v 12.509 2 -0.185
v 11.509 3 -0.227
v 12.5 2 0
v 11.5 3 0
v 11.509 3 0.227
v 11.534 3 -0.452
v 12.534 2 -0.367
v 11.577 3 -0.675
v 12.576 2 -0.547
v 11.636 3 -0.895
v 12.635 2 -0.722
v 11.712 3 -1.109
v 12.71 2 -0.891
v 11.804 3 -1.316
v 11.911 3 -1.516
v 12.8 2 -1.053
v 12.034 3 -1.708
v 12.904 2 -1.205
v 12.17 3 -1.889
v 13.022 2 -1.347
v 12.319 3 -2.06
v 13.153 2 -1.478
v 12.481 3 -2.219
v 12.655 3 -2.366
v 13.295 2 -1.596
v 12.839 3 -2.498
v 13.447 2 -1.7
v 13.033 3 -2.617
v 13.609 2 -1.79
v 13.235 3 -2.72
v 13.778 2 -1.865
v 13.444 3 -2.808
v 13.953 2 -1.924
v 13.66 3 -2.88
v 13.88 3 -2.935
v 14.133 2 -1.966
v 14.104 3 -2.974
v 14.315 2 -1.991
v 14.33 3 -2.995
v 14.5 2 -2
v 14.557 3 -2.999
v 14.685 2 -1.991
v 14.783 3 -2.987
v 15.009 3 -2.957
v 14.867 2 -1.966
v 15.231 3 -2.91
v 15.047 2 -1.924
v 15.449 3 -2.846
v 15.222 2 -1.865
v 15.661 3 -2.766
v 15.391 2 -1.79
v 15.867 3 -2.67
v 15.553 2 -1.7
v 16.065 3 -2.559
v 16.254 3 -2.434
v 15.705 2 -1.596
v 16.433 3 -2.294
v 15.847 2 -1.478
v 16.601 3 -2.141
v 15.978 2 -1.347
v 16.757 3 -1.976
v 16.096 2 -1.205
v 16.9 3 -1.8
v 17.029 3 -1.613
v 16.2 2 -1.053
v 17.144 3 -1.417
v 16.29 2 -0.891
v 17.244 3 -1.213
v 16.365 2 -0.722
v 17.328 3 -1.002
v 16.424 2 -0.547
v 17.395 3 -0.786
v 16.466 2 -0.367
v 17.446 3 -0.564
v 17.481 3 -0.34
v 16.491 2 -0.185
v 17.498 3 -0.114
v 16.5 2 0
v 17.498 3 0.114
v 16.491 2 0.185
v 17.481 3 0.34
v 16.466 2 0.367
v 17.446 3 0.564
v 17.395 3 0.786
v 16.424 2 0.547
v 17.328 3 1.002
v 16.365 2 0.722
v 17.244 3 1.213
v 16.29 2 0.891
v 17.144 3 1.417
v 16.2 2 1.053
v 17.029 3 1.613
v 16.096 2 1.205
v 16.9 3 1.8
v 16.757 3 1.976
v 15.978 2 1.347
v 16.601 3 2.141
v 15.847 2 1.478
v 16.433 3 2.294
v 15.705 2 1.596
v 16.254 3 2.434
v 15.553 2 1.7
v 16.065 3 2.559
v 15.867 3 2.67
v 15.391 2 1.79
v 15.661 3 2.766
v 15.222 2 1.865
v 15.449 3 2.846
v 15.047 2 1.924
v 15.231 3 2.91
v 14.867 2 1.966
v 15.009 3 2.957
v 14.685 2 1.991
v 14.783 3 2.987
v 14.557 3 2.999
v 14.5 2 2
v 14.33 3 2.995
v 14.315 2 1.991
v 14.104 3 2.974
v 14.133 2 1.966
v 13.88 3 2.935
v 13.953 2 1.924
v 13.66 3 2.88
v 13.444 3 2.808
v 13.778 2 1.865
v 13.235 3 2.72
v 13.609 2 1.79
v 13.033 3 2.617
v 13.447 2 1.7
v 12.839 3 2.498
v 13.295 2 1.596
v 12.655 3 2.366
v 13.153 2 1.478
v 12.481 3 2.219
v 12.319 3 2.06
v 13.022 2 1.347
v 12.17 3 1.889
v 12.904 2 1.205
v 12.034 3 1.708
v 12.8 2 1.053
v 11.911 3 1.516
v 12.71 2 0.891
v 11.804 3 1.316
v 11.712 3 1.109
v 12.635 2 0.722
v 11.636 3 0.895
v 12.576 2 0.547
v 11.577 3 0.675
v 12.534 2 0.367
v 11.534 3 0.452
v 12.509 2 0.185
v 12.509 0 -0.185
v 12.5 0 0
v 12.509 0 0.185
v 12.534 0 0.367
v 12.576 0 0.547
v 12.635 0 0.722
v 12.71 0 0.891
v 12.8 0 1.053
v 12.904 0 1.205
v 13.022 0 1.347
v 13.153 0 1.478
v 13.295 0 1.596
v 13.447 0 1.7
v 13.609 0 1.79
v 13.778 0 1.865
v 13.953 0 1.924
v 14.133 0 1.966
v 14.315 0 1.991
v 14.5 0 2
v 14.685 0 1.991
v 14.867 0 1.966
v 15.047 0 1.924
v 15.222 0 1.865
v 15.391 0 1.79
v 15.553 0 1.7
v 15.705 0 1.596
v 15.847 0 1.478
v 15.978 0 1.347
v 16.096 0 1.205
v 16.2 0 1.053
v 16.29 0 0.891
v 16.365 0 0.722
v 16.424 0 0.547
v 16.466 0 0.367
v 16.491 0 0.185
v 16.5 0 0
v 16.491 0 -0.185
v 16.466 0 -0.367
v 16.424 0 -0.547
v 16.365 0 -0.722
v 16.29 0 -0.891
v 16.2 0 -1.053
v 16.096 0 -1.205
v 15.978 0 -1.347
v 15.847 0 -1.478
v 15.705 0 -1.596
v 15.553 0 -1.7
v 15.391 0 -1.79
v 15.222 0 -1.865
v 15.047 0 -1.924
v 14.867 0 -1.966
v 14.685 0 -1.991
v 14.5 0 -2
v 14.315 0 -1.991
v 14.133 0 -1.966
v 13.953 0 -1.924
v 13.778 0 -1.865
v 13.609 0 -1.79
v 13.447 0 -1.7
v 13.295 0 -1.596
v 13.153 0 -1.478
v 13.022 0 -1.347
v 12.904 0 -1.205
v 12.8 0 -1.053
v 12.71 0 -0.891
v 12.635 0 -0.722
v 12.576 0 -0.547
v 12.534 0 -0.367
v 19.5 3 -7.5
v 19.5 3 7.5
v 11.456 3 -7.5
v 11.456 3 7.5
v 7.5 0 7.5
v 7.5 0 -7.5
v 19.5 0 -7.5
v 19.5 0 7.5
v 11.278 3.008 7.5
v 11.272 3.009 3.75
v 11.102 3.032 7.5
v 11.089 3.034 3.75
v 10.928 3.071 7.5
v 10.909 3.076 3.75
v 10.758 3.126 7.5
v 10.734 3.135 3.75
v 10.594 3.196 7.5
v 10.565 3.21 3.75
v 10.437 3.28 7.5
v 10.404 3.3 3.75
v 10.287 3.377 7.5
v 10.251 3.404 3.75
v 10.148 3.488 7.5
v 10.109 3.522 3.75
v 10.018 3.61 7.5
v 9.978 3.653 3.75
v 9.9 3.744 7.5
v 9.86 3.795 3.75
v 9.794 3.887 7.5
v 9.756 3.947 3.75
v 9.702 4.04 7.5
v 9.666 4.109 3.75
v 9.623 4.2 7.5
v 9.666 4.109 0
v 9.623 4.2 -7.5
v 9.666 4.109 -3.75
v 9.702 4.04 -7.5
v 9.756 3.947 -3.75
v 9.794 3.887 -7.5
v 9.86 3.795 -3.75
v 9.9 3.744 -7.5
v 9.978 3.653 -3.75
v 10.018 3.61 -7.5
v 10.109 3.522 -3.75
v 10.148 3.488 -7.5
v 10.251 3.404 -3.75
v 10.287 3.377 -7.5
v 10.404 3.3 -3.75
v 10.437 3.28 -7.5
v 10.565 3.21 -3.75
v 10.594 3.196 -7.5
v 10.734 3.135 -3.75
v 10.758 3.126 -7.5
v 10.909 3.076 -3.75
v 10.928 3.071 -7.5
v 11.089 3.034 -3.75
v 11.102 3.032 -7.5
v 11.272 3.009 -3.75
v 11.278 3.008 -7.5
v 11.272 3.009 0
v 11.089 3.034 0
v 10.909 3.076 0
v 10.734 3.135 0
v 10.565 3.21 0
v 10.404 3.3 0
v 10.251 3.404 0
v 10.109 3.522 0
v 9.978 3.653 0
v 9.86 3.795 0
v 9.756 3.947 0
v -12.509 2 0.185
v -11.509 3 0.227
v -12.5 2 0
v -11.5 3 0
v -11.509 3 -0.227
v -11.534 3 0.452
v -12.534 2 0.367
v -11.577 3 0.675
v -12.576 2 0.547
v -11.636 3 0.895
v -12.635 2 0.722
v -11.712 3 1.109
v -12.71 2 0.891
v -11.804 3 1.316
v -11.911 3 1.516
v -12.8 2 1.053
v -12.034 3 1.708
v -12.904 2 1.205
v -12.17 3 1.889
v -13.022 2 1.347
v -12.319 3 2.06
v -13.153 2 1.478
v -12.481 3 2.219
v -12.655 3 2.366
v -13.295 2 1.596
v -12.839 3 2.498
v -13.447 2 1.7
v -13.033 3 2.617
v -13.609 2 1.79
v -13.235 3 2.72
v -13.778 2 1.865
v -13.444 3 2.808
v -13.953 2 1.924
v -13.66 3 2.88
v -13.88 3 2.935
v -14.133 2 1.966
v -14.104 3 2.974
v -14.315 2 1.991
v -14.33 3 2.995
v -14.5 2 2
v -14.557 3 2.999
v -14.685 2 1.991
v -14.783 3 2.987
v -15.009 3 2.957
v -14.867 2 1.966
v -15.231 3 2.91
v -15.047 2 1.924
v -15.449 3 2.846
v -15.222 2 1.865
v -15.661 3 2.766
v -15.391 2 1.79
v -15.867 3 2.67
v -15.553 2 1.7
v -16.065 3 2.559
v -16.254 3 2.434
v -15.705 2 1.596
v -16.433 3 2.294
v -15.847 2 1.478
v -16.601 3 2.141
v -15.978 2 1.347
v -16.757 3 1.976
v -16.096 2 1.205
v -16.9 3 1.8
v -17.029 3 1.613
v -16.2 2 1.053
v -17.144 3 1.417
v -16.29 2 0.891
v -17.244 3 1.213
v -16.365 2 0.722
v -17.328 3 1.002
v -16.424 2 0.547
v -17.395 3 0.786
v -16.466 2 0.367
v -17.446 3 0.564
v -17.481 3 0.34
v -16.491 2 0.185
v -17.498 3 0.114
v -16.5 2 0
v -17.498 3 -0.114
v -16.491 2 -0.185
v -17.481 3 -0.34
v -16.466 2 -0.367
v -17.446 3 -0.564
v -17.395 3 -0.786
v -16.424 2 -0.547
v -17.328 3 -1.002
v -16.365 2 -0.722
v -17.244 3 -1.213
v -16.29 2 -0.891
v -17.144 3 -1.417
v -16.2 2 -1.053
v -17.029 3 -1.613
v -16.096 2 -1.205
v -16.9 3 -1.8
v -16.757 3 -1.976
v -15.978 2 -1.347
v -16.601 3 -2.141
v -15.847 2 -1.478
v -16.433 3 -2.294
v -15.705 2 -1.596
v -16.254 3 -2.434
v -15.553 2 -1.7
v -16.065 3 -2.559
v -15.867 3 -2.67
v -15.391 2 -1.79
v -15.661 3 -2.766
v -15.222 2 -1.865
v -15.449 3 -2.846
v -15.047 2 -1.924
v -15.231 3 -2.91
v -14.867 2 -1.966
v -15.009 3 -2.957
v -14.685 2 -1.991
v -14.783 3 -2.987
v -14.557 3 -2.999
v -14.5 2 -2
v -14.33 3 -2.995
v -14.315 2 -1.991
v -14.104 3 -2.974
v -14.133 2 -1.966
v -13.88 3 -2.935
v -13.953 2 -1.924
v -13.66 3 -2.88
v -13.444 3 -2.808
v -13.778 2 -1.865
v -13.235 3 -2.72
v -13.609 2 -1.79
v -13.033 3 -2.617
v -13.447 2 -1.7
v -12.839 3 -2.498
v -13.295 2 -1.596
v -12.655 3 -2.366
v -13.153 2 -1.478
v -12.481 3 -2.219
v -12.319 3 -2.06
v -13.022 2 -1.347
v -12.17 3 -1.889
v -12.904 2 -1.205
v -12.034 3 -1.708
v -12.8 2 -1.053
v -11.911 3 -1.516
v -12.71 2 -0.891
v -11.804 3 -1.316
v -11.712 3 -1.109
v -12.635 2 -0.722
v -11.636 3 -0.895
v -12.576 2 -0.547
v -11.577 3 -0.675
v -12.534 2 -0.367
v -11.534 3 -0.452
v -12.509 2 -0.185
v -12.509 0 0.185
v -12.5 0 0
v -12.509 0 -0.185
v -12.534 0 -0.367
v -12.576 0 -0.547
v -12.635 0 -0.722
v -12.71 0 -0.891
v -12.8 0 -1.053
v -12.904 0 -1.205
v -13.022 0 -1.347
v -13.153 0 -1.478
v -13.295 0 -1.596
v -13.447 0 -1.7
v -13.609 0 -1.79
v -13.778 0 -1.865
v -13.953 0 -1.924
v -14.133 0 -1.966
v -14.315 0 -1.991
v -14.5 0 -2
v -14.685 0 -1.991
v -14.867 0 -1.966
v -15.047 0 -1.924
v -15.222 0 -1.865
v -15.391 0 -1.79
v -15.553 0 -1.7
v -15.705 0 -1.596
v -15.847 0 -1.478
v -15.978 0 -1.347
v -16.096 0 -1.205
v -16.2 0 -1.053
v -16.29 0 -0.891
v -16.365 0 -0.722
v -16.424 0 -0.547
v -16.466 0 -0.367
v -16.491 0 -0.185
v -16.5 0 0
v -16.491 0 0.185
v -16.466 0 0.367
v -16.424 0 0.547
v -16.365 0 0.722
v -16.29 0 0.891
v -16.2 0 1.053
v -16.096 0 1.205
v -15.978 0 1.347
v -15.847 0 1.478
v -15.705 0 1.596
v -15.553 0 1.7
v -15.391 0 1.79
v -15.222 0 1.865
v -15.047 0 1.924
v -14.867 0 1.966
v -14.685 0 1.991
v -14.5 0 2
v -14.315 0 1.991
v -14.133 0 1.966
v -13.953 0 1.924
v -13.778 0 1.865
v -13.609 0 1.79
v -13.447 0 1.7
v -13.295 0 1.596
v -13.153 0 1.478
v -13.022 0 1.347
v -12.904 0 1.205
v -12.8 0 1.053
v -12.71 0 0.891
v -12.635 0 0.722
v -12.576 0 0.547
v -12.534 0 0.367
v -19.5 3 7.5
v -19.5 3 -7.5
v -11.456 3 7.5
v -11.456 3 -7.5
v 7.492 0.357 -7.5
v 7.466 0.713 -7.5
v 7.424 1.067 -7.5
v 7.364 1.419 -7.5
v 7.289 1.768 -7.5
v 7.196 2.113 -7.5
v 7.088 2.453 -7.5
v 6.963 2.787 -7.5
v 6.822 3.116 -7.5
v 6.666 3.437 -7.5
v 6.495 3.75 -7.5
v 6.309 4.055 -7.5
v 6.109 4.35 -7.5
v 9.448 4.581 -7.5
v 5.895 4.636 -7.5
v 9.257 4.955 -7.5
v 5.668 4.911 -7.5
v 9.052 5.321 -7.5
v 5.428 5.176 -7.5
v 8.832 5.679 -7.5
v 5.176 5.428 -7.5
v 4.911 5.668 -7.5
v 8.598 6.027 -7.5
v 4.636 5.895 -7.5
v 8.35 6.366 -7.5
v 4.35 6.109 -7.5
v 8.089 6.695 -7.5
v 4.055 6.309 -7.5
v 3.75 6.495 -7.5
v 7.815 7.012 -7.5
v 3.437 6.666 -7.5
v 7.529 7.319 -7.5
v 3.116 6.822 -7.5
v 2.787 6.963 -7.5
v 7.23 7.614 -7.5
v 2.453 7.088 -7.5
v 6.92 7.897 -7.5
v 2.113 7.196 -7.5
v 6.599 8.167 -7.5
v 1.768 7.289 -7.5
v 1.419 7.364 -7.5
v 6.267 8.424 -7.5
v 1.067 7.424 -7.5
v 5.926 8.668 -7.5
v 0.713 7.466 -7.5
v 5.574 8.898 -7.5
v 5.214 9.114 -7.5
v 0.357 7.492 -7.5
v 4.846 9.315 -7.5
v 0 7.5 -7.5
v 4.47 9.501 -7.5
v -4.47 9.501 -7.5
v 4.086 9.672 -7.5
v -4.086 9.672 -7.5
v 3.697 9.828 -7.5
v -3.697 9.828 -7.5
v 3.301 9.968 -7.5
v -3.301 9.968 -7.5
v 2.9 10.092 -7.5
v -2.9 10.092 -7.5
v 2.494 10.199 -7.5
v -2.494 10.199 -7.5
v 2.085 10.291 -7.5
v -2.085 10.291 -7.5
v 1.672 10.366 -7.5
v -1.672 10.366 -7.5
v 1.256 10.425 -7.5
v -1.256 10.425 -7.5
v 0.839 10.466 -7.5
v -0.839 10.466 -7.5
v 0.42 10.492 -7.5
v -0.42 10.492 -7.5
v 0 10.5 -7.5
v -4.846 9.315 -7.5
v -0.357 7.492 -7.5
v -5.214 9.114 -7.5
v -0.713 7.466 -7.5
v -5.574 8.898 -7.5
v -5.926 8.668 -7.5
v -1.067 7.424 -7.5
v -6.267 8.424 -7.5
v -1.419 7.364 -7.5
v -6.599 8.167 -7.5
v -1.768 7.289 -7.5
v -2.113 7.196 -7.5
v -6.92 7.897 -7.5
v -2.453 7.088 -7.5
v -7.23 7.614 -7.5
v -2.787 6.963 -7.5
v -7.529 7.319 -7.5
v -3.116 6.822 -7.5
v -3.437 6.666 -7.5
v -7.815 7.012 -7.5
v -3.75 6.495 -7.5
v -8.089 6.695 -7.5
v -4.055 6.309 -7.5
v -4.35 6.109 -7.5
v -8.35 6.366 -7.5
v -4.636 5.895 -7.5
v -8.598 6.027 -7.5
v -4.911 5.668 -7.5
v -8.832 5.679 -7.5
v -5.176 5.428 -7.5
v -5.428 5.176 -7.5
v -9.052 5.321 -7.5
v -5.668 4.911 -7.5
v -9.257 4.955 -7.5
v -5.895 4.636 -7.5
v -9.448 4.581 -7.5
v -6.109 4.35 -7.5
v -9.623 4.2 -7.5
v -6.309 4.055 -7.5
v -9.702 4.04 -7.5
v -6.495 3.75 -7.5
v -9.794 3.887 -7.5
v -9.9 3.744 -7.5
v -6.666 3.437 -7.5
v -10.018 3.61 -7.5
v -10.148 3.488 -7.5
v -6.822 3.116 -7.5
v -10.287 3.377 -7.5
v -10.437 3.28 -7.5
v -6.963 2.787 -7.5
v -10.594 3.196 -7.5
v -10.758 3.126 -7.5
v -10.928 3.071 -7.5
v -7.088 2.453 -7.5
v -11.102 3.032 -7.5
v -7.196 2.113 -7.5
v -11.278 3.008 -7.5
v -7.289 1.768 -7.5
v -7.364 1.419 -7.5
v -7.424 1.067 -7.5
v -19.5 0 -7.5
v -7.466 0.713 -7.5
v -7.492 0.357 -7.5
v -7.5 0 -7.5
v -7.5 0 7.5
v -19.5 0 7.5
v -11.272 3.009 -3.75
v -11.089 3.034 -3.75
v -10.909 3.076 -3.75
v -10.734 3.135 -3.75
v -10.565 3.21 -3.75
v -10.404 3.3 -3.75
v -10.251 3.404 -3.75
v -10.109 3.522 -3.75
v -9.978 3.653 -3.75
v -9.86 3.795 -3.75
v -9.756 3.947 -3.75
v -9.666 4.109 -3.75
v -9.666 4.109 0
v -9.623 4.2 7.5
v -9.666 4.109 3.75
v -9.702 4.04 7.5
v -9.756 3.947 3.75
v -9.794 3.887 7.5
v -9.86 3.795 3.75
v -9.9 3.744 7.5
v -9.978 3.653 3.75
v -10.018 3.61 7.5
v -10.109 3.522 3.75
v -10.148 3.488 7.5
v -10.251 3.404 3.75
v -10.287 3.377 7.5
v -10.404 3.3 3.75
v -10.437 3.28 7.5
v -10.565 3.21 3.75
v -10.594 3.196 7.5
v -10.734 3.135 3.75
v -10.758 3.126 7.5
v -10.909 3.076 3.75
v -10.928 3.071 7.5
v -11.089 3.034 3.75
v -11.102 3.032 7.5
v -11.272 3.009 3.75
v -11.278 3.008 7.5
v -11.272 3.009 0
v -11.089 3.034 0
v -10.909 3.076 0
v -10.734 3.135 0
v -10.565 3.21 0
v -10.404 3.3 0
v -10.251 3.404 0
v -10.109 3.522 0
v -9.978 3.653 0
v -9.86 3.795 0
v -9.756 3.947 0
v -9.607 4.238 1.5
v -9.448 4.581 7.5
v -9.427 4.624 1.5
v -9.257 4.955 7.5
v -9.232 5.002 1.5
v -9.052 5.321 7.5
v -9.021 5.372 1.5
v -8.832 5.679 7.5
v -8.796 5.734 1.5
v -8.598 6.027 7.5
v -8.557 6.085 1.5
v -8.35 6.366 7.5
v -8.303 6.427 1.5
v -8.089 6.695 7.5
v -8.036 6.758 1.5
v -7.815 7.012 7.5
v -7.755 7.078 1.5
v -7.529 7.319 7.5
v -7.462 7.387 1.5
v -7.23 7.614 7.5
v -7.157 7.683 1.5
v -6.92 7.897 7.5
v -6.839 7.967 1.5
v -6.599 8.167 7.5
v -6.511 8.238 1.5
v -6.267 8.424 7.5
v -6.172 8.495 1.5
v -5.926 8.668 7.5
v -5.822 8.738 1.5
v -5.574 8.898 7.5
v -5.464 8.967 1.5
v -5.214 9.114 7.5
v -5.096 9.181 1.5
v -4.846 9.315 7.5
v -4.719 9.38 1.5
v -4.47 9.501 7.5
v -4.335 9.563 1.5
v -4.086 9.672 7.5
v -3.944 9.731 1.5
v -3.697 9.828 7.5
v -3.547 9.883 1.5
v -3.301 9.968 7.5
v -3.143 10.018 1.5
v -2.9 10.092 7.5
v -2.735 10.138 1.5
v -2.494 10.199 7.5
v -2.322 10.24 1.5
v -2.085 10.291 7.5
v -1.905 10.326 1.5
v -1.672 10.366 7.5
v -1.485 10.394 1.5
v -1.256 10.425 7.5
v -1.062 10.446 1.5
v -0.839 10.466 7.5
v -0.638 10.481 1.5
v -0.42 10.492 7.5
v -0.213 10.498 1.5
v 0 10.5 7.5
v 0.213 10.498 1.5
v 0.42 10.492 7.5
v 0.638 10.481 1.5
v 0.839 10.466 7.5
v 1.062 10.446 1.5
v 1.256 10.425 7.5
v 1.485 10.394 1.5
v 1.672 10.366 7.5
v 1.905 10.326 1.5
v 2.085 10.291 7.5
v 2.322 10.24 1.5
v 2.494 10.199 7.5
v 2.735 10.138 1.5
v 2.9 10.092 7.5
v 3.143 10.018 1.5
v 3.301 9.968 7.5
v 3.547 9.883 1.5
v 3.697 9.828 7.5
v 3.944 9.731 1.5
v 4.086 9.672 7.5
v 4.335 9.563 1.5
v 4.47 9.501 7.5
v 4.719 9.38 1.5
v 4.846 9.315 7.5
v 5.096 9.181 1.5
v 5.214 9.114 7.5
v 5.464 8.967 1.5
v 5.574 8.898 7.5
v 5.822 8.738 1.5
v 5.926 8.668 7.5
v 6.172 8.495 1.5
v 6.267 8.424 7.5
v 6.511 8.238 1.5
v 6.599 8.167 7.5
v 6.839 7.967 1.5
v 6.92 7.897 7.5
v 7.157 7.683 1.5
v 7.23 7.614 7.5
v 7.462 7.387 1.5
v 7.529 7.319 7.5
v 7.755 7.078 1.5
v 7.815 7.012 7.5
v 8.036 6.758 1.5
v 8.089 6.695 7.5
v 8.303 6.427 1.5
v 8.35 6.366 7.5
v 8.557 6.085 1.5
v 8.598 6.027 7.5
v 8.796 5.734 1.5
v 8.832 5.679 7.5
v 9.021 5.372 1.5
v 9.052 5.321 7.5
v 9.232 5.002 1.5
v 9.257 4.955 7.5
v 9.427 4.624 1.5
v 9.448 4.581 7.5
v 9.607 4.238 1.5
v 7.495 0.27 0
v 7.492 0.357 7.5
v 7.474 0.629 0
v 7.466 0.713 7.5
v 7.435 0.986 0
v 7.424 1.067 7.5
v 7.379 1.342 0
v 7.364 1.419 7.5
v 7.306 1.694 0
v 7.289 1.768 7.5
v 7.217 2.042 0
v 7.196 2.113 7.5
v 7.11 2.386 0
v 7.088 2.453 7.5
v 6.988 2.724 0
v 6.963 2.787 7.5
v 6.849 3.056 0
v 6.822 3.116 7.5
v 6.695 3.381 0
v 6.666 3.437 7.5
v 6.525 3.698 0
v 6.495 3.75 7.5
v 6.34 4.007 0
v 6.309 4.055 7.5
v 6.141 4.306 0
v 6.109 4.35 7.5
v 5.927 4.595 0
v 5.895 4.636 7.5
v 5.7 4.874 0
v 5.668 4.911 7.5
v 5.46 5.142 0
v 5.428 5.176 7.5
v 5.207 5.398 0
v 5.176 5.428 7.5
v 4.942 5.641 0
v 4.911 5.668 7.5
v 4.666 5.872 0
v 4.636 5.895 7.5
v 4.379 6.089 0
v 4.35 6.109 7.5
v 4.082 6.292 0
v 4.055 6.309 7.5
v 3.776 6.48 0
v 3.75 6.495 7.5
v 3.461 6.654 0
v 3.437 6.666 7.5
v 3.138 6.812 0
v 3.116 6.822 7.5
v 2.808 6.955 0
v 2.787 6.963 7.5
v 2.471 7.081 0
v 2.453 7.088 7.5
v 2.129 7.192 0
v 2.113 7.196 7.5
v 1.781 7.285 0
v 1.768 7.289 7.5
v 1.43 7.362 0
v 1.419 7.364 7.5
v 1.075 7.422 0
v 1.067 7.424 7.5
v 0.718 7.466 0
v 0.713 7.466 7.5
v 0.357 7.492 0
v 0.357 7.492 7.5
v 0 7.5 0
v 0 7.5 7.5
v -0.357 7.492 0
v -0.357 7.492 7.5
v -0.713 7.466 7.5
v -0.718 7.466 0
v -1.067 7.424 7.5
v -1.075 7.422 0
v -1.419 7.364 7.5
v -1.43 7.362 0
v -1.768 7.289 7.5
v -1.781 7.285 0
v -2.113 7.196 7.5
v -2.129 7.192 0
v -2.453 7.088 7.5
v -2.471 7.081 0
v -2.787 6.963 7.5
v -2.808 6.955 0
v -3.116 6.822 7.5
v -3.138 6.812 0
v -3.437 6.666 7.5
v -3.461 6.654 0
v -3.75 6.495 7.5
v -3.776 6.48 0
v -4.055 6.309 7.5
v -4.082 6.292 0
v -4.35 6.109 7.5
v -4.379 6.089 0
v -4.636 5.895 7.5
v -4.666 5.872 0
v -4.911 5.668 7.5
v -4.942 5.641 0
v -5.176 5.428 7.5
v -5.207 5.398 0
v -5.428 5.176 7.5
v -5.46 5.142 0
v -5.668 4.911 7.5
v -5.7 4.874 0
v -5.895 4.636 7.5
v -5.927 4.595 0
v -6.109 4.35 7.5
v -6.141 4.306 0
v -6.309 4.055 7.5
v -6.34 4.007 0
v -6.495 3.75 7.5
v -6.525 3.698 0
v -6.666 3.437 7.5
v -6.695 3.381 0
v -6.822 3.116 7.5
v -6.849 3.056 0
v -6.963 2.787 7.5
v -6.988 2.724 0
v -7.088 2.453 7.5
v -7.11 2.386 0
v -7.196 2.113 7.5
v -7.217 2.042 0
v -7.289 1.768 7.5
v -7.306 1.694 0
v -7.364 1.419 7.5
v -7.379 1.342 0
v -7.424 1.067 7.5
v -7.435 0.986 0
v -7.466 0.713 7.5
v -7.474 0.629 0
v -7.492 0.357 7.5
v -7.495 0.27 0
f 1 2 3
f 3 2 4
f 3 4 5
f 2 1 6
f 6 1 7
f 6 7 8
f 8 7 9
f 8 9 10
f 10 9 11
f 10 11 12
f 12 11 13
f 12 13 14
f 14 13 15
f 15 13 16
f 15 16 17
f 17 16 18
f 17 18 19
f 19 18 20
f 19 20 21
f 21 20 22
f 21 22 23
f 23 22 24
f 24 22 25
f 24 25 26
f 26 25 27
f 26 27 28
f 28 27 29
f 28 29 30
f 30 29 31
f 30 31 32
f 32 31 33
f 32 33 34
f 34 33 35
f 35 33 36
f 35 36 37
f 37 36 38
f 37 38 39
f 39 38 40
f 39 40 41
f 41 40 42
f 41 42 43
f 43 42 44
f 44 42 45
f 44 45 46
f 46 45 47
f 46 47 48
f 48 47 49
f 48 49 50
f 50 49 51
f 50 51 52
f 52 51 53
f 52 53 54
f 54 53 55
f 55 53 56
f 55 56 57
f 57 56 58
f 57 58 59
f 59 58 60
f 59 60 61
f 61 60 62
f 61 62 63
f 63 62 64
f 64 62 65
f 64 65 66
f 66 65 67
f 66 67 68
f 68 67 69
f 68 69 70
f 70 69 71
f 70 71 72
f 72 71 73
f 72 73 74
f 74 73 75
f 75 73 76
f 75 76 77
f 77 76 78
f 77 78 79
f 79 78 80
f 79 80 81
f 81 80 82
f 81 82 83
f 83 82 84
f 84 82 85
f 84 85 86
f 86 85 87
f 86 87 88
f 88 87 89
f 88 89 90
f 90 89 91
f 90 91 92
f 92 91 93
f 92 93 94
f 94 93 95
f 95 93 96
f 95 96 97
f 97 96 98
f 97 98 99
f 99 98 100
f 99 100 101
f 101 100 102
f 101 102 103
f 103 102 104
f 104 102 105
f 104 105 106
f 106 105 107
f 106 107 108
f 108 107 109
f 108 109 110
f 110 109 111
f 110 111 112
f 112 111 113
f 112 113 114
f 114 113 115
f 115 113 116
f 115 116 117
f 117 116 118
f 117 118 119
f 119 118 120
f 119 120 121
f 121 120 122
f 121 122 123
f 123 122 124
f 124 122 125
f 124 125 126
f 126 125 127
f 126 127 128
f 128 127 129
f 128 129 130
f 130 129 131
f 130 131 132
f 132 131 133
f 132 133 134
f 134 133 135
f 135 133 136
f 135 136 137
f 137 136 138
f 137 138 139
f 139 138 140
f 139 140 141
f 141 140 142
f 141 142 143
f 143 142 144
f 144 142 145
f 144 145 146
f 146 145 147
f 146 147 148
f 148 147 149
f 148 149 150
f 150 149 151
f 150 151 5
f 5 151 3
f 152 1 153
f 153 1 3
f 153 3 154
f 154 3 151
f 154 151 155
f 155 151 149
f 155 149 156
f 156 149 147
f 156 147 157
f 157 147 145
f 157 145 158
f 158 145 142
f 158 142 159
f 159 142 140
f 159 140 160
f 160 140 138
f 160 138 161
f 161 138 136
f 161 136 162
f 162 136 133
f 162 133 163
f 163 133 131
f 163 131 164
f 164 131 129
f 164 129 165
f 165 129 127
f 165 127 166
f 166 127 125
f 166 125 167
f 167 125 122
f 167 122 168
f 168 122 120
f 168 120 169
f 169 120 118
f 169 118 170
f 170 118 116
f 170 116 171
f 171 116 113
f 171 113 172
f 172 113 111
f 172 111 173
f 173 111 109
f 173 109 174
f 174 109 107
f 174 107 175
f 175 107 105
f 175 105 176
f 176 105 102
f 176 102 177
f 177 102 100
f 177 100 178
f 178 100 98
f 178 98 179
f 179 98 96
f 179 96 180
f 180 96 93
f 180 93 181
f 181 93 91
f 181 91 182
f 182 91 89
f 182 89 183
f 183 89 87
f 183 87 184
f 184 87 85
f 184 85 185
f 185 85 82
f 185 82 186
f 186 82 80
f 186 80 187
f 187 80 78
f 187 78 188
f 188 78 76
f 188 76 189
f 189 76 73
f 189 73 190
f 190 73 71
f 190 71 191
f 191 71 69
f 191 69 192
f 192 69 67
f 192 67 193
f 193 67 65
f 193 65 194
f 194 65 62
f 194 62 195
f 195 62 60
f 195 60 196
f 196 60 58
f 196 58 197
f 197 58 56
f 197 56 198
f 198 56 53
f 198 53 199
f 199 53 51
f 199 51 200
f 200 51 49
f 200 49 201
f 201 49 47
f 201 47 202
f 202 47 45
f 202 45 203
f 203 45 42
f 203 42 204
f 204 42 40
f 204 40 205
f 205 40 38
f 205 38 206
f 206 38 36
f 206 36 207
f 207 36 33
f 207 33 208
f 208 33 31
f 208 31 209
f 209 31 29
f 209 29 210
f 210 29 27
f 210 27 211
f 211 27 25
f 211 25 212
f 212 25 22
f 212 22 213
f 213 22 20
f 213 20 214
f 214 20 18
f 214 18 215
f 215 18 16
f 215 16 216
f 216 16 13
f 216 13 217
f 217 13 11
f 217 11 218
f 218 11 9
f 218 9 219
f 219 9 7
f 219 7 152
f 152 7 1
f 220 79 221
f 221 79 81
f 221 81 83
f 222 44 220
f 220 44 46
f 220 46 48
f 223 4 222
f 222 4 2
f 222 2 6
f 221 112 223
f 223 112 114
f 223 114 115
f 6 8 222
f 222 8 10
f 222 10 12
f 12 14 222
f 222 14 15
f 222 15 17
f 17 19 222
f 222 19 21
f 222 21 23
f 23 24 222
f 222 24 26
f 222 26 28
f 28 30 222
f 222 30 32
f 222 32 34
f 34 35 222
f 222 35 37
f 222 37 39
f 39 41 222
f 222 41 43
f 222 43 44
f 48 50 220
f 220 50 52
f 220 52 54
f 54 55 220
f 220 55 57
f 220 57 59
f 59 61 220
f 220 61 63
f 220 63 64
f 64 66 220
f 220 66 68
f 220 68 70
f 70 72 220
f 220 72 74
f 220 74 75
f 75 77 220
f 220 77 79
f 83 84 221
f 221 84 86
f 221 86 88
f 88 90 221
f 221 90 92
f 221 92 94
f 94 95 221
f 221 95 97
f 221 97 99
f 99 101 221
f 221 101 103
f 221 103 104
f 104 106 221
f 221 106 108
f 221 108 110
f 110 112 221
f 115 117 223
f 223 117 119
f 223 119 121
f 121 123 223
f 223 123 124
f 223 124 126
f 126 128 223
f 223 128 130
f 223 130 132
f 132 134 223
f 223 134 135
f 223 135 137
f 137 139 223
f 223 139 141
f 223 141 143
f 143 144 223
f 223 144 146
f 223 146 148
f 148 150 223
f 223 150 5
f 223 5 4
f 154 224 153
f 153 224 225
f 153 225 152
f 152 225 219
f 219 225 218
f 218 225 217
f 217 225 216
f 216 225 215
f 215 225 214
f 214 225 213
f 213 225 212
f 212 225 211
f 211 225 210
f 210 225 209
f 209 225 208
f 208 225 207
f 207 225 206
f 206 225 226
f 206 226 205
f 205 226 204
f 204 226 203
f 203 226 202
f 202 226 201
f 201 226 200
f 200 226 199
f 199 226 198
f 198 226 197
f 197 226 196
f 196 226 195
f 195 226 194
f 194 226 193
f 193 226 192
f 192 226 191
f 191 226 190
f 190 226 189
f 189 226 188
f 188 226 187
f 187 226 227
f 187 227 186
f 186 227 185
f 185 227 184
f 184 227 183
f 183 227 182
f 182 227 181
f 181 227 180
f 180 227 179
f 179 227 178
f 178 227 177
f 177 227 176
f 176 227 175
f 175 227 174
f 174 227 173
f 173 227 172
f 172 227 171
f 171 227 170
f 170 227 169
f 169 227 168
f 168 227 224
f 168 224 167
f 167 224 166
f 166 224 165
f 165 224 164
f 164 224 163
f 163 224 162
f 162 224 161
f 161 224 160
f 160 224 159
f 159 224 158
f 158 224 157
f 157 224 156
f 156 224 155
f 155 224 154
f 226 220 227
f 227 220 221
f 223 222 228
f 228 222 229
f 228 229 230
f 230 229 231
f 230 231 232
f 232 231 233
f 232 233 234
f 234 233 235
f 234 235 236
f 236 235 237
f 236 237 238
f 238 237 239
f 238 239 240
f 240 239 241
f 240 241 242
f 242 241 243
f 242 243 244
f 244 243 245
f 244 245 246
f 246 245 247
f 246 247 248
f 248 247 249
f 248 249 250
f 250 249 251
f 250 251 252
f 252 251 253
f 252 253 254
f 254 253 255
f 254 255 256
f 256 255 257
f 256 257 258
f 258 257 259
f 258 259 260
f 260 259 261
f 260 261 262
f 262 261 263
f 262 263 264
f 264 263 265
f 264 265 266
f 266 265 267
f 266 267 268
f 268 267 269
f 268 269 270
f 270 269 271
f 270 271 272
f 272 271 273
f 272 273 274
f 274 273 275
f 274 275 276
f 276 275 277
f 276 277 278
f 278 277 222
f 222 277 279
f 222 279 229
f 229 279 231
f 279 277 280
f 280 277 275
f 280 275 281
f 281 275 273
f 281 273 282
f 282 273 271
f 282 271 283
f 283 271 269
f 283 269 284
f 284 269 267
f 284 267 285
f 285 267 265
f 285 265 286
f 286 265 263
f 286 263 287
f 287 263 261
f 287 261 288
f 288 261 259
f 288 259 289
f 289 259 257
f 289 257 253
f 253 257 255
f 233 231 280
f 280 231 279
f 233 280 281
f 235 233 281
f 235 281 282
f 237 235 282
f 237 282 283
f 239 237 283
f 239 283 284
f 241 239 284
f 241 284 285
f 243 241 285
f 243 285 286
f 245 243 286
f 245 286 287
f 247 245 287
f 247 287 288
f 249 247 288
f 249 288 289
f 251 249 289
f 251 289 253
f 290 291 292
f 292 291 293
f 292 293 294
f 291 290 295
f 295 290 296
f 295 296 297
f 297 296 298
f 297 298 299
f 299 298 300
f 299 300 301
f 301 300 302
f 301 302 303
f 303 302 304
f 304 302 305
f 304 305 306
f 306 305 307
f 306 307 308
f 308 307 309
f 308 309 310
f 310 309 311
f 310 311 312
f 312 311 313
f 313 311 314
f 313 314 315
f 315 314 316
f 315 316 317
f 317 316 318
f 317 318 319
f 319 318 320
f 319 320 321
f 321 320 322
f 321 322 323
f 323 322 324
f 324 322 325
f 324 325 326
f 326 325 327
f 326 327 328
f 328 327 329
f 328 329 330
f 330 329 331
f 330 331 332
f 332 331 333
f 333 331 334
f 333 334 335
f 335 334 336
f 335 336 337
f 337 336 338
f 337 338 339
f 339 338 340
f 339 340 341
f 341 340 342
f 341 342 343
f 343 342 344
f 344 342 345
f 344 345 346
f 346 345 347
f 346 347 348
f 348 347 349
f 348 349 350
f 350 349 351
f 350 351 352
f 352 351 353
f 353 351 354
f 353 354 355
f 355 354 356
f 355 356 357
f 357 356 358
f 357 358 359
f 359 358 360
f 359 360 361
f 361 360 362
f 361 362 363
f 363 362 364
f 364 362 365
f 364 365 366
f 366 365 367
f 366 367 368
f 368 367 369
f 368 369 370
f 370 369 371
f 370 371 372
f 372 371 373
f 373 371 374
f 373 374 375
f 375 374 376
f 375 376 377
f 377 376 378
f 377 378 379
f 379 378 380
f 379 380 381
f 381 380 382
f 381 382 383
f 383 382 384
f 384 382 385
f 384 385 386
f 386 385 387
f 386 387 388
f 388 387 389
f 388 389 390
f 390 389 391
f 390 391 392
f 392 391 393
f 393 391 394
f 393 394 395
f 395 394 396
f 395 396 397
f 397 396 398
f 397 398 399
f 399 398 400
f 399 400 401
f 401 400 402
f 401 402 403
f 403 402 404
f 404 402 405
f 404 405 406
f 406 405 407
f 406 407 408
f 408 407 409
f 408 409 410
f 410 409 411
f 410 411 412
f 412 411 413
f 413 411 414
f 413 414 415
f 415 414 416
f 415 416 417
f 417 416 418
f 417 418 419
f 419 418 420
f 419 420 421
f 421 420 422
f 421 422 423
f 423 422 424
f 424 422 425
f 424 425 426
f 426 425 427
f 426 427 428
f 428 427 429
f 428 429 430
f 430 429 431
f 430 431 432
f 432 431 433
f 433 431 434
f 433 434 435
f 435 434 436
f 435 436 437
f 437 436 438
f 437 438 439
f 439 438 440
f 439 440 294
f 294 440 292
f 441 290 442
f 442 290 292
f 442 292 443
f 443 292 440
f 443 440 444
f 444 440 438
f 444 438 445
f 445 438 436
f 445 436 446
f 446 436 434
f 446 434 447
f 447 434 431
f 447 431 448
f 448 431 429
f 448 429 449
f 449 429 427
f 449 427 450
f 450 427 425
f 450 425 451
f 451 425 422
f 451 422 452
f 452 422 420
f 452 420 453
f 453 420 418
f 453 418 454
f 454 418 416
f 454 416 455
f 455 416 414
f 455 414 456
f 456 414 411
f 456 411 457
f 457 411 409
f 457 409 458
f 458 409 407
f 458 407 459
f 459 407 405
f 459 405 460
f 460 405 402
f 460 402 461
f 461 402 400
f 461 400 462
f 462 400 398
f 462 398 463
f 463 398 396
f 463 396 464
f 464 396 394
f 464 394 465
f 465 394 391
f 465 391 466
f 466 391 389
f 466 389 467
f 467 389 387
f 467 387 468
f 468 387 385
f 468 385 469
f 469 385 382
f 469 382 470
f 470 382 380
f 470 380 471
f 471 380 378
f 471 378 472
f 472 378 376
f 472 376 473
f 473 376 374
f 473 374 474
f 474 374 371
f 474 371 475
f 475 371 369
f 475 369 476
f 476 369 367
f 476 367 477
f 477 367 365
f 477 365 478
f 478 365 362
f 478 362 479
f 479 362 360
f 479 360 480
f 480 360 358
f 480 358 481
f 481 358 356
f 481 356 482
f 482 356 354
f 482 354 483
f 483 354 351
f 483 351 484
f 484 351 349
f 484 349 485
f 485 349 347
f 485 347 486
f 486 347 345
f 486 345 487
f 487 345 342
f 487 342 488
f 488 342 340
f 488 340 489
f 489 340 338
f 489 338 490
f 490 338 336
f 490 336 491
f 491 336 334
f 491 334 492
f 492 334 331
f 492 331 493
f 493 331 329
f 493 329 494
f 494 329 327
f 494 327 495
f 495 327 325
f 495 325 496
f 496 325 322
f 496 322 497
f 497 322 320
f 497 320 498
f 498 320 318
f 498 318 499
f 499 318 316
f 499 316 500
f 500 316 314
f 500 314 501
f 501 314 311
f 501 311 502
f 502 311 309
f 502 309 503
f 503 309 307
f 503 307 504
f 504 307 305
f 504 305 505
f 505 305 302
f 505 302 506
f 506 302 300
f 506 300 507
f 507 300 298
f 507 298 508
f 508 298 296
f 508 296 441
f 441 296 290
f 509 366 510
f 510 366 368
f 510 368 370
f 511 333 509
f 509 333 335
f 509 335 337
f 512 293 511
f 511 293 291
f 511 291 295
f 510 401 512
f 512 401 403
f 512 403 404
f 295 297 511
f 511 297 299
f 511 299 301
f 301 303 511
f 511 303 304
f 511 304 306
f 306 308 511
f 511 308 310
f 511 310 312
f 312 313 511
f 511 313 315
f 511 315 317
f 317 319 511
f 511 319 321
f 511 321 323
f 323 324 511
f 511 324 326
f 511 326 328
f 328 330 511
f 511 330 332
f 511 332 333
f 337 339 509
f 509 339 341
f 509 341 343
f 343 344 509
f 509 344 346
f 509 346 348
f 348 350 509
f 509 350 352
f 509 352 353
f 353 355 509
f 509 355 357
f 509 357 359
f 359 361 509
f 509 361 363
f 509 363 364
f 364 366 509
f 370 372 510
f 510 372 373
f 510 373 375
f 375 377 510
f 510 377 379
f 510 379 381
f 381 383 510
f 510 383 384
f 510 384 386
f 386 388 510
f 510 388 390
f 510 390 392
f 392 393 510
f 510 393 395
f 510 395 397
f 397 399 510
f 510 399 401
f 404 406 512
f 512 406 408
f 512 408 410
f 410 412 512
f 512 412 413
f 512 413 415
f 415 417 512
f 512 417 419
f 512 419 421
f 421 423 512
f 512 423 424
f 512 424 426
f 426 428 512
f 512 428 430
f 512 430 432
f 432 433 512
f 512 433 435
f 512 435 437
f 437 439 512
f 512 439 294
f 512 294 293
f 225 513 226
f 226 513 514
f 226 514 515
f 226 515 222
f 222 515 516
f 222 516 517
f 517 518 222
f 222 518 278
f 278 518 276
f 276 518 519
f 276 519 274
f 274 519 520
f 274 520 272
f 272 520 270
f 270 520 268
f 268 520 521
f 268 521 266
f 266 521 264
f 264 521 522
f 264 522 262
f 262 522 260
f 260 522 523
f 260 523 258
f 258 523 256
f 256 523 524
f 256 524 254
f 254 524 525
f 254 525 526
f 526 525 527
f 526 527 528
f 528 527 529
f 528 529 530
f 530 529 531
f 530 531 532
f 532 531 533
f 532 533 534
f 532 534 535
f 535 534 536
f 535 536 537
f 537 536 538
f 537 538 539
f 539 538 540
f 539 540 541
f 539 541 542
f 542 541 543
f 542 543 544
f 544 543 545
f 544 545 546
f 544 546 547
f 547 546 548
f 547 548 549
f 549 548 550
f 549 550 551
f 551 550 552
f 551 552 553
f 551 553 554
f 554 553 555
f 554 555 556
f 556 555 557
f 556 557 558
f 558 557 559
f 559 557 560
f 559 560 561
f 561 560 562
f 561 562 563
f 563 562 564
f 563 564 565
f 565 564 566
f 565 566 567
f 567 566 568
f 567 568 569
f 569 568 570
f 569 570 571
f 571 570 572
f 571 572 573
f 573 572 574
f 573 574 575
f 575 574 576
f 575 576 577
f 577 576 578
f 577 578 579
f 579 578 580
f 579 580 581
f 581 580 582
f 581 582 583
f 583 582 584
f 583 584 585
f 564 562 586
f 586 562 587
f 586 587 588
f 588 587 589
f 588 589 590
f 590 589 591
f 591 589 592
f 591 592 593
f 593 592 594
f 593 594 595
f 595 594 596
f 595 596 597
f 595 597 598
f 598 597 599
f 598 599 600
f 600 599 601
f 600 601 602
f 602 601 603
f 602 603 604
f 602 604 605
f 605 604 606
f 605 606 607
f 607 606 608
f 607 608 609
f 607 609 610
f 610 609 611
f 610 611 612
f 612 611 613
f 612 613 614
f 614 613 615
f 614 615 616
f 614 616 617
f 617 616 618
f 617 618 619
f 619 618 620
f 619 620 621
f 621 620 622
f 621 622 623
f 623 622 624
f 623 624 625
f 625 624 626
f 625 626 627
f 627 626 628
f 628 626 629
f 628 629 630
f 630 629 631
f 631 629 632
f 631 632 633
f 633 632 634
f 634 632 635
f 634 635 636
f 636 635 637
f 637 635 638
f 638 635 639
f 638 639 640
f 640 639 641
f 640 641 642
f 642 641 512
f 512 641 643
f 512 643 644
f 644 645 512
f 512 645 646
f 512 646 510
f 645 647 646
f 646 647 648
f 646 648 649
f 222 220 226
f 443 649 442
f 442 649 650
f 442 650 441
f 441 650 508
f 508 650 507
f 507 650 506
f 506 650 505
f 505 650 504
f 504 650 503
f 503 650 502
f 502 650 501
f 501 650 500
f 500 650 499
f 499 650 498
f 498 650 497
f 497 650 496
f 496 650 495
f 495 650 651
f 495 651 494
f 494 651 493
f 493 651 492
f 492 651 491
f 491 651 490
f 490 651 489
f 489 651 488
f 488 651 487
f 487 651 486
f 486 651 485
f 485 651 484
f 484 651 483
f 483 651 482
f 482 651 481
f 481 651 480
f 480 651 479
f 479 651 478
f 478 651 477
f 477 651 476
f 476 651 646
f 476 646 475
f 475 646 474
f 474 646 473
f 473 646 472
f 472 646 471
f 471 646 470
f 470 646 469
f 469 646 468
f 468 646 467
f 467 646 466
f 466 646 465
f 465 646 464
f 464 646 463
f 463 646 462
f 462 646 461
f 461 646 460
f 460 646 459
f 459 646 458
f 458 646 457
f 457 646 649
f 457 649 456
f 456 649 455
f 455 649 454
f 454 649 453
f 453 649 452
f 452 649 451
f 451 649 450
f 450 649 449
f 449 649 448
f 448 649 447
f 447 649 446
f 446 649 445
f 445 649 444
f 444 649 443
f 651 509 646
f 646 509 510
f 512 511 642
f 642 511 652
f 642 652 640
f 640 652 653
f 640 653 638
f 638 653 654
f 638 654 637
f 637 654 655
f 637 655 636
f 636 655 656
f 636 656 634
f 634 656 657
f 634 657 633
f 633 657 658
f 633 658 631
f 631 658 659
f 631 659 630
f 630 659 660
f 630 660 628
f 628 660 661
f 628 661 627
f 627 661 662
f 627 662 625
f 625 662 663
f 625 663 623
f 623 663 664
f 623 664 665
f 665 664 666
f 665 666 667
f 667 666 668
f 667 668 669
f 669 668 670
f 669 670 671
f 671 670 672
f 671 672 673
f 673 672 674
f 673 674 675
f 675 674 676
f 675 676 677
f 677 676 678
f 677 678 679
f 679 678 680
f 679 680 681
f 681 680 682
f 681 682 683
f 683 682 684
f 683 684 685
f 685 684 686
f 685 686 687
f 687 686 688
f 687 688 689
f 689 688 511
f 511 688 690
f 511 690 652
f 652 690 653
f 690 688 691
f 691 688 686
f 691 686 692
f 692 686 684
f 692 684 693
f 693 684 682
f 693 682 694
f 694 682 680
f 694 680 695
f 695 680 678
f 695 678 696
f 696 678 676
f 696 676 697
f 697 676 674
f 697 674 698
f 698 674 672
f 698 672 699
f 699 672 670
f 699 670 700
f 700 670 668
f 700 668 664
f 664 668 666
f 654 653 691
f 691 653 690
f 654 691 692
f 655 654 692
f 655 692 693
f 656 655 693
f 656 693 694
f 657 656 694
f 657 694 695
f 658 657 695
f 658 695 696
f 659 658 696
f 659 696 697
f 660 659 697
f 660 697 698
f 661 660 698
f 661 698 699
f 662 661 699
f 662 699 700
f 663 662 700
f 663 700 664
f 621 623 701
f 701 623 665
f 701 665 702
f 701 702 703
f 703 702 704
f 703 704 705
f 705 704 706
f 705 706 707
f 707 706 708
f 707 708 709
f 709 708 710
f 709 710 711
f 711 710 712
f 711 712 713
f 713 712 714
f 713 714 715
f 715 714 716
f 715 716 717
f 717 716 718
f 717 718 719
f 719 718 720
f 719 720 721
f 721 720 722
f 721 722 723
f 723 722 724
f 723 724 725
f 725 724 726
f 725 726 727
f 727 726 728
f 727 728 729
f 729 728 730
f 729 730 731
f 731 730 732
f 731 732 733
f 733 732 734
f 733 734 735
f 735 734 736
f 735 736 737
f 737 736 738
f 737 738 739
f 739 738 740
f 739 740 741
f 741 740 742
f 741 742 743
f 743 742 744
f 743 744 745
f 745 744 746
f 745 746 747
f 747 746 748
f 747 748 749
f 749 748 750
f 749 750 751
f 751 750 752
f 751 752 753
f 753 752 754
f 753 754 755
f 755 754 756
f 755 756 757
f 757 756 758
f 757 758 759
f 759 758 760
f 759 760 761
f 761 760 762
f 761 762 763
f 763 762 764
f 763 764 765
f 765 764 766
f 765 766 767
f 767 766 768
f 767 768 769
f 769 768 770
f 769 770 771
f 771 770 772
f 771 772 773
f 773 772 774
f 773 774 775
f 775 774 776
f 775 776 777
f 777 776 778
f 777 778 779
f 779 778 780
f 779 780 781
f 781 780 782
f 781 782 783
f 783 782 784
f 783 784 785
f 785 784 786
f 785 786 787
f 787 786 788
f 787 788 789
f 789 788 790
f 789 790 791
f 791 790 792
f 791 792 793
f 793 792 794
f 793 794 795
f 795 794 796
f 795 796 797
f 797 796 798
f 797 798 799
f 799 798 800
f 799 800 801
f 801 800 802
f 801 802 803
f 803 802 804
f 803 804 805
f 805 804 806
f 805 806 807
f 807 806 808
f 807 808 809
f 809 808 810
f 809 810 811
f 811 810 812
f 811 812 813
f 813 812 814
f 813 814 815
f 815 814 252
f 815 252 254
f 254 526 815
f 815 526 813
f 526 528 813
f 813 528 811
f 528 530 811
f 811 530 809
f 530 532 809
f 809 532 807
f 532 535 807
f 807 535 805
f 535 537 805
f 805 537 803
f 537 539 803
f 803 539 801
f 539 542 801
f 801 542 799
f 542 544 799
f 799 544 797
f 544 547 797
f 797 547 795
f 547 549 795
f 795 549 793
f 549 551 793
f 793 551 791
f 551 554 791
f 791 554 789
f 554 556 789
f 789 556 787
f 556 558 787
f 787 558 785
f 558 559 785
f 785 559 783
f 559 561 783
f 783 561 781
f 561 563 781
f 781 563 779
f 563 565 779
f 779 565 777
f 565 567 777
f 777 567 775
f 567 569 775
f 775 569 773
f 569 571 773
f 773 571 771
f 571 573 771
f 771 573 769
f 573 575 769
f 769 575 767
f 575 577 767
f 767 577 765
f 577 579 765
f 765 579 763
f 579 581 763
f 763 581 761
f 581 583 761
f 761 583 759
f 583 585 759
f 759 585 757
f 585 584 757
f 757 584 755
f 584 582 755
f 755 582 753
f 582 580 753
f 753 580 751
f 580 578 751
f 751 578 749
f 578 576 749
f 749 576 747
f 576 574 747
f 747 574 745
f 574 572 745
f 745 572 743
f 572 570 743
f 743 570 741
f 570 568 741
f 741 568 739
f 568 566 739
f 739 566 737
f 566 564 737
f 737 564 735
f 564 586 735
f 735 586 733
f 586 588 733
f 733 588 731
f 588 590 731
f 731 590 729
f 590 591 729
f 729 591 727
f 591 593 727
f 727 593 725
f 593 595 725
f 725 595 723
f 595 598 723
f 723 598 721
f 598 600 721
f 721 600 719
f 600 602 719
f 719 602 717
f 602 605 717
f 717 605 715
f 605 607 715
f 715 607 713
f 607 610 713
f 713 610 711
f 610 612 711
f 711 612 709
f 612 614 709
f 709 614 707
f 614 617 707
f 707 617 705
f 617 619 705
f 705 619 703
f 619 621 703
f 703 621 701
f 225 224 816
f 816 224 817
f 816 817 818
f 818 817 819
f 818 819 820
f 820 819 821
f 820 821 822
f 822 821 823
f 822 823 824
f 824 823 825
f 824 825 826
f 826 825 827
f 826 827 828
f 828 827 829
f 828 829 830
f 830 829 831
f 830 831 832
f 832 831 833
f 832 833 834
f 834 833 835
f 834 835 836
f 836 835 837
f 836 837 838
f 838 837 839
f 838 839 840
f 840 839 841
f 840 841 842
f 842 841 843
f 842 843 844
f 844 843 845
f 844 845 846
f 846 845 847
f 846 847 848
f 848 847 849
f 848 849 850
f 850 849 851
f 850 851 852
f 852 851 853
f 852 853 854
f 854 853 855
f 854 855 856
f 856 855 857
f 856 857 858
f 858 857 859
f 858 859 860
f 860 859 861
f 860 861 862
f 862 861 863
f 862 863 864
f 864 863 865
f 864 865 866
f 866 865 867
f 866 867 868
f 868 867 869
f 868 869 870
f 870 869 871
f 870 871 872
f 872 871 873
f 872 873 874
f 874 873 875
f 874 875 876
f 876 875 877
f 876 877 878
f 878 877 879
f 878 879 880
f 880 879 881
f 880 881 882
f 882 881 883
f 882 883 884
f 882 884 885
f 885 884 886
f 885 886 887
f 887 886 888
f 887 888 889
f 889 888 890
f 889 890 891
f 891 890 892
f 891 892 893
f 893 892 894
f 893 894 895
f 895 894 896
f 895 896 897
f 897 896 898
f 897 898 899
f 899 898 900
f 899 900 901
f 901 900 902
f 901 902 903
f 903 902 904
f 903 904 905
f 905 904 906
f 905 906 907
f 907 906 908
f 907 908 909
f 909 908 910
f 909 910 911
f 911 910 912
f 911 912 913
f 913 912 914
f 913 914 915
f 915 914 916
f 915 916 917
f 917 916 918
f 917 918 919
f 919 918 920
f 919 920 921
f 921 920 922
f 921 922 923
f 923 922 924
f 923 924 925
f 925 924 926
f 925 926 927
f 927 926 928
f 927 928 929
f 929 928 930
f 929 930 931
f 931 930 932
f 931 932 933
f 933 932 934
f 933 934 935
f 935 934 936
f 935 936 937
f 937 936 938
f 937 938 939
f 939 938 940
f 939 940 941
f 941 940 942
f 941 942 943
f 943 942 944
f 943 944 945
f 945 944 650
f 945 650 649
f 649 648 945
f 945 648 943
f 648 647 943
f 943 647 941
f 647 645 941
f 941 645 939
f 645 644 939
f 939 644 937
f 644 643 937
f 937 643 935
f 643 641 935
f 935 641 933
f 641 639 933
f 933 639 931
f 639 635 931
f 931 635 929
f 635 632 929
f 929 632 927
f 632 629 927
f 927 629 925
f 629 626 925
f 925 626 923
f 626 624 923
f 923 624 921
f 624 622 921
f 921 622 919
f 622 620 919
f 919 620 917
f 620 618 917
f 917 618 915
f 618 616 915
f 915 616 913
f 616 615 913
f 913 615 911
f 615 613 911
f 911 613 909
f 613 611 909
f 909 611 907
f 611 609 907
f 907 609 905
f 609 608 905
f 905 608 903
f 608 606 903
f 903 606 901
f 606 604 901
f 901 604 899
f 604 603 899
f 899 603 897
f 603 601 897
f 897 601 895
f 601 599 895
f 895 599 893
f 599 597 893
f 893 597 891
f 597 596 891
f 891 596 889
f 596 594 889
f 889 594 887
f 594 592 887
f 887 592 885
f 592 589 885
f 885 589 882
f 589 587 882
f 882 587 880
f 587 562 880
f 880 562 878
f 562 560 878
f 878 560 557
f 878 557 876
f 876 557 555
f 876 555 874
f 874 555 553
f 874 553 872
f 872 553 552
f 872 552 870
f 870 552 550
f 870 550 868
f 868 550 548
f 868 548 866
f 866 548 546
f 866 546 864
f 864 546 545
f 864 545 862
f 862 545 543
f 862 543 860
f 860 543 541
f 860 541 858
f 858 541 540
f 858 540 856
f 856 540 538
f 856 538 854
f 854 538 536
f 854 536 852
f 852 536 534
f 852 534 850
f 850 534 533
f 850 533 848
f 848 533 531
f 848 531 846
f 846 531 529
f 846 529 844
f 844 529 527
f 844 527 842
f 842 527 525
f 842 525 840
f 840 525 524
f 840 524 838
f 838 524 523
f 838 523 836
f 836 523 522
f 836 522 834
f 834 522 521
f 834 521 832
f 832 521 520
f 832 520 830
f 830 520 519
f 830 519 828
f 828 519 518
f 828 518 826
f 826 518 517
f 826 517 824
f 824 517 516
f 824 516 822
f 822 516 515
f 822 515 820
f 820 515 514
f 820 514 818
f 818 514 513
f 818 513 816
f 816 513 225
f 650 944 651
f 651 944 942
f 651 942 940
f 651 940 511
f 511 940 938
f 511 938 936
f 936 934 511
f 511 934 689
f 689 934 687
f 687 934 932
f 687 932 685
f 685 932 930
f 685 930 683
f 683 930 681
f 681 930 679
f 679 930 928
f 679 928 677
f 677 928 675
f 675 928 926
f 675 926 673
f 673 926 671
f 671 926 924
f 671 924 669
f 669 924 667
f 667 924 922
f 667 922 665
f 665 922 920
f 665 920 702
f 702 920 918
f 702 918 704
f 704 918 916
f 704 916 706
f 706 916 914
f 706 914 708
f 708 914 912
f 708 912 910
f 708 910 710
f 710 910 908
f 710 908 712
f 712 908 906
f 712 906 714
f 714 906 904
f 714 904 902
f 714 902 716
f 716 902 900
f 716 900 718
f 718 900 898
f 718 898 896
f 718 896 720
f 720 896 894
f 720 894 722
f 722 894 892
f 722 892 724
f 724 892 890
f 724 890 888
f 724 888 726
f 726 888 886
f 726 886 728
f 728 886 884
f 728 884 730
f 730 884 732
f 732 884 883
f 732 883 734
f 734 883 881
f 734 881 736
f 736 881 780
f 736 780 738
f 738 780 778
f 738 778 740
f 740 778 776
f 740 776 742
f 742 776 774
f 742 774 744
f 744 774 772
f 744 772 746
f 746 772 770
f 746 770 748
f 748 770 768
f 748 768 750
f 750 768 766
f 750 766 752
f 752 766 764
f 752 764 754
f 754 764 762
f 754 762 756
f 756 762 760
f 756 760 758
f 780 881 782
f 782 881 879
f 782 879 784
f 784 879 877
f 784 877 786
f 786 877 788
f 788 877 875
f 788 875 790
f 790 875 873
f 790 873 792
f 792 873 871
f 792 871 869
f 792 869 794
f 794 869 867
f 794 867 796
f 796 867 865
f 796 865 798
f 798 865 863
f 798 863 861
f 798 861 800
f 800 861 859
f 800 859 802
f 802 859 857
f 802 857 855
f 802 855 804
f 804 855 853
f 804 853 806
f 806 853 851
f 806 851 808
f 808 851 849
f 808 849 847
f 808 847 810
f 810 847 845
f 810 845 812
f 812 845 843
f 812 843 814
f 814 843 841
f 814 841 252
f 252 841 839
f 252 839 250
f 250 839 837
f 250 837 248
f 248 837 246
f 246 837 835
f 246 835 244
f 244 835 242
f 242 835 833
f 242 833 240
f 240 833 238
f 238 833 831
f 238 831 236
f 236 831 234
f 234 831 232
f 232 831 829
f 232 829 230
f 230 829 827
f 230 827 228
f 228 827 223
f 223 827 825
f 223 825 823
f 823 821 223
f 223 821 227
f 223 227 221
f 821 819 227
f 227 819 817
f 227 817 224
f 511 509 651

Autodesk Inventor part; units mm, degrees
ref_plane "YZ Plane" through (0, 0, 0) normal (1, 0, 0) x (0, 1, 0)
ref_plane "XZ Plane" through (0, 0, 0) normal (0, 1, 0) x (-1, 0, 0)
ref_plane "XY Plane" through (0, 0, 0) normal (0, 0, 1) x (1, 0, 0)
sketch "Sketch1" plane through (0, 0, 0) normal (0, 0, 1) x (1, 0, 0)
  arc A0 (0, 7.5) -> (-7.5, 0) centre (0, 0) ccw
  line L0 (-7.5, 0) -> (-19.5, 0)
  line L1 (-19.5, 0) -> (-19.5, 3)
  arc A1 (0, 10.5) -> (-9.6234, 4.2) centre (0, 0) ccw
  line L2 (-19.5, 3) -> (-11.4564, 3)
  line L3 (0, 10.5) -> (0, 7.5)
  arc A2 (-11.4564, 3) -> (-9.6234, 4.2) centre (-11.4564, 5) ccw
  point P0 (-10.0623, 3)
  dimension "d0" = 15
  dimension "d1" = 12
  dimension "d2" = 3
  dimension "d3" = 3
  dimension "d4" = 2
extrude "Extrusion1" add sketch "Sketch1" along normal mid plane 15
sketch "Sketch2" plane through (-19.5, 3, 7.5) normal (0, 1, 0) x (1, 0, 0)
  line L0 (-3.9, 7.5) -> (23.4, 7.5) projected
  circle A0 centre (5, 7.5) radius 2
  line L1 (0, 15) -> (0, 0) projected
  point P0 (19.5, 7.5)
  dimension "d7" = 4
  dimension "d8" = 5
extrude "Extrusion2" cut sketch "Sketch2" against normal blind 15
chamfer "Chamfer1" distance 1 angle 45 1 edges at (-16.5, 3, 0)
mirror "Mirror1" about plane through (0, 7.5, 0) normal (1, 0, 0) of "Extrusion1", "Extrusion2", "Chamfer1"
properties part number "CableWallMount"
